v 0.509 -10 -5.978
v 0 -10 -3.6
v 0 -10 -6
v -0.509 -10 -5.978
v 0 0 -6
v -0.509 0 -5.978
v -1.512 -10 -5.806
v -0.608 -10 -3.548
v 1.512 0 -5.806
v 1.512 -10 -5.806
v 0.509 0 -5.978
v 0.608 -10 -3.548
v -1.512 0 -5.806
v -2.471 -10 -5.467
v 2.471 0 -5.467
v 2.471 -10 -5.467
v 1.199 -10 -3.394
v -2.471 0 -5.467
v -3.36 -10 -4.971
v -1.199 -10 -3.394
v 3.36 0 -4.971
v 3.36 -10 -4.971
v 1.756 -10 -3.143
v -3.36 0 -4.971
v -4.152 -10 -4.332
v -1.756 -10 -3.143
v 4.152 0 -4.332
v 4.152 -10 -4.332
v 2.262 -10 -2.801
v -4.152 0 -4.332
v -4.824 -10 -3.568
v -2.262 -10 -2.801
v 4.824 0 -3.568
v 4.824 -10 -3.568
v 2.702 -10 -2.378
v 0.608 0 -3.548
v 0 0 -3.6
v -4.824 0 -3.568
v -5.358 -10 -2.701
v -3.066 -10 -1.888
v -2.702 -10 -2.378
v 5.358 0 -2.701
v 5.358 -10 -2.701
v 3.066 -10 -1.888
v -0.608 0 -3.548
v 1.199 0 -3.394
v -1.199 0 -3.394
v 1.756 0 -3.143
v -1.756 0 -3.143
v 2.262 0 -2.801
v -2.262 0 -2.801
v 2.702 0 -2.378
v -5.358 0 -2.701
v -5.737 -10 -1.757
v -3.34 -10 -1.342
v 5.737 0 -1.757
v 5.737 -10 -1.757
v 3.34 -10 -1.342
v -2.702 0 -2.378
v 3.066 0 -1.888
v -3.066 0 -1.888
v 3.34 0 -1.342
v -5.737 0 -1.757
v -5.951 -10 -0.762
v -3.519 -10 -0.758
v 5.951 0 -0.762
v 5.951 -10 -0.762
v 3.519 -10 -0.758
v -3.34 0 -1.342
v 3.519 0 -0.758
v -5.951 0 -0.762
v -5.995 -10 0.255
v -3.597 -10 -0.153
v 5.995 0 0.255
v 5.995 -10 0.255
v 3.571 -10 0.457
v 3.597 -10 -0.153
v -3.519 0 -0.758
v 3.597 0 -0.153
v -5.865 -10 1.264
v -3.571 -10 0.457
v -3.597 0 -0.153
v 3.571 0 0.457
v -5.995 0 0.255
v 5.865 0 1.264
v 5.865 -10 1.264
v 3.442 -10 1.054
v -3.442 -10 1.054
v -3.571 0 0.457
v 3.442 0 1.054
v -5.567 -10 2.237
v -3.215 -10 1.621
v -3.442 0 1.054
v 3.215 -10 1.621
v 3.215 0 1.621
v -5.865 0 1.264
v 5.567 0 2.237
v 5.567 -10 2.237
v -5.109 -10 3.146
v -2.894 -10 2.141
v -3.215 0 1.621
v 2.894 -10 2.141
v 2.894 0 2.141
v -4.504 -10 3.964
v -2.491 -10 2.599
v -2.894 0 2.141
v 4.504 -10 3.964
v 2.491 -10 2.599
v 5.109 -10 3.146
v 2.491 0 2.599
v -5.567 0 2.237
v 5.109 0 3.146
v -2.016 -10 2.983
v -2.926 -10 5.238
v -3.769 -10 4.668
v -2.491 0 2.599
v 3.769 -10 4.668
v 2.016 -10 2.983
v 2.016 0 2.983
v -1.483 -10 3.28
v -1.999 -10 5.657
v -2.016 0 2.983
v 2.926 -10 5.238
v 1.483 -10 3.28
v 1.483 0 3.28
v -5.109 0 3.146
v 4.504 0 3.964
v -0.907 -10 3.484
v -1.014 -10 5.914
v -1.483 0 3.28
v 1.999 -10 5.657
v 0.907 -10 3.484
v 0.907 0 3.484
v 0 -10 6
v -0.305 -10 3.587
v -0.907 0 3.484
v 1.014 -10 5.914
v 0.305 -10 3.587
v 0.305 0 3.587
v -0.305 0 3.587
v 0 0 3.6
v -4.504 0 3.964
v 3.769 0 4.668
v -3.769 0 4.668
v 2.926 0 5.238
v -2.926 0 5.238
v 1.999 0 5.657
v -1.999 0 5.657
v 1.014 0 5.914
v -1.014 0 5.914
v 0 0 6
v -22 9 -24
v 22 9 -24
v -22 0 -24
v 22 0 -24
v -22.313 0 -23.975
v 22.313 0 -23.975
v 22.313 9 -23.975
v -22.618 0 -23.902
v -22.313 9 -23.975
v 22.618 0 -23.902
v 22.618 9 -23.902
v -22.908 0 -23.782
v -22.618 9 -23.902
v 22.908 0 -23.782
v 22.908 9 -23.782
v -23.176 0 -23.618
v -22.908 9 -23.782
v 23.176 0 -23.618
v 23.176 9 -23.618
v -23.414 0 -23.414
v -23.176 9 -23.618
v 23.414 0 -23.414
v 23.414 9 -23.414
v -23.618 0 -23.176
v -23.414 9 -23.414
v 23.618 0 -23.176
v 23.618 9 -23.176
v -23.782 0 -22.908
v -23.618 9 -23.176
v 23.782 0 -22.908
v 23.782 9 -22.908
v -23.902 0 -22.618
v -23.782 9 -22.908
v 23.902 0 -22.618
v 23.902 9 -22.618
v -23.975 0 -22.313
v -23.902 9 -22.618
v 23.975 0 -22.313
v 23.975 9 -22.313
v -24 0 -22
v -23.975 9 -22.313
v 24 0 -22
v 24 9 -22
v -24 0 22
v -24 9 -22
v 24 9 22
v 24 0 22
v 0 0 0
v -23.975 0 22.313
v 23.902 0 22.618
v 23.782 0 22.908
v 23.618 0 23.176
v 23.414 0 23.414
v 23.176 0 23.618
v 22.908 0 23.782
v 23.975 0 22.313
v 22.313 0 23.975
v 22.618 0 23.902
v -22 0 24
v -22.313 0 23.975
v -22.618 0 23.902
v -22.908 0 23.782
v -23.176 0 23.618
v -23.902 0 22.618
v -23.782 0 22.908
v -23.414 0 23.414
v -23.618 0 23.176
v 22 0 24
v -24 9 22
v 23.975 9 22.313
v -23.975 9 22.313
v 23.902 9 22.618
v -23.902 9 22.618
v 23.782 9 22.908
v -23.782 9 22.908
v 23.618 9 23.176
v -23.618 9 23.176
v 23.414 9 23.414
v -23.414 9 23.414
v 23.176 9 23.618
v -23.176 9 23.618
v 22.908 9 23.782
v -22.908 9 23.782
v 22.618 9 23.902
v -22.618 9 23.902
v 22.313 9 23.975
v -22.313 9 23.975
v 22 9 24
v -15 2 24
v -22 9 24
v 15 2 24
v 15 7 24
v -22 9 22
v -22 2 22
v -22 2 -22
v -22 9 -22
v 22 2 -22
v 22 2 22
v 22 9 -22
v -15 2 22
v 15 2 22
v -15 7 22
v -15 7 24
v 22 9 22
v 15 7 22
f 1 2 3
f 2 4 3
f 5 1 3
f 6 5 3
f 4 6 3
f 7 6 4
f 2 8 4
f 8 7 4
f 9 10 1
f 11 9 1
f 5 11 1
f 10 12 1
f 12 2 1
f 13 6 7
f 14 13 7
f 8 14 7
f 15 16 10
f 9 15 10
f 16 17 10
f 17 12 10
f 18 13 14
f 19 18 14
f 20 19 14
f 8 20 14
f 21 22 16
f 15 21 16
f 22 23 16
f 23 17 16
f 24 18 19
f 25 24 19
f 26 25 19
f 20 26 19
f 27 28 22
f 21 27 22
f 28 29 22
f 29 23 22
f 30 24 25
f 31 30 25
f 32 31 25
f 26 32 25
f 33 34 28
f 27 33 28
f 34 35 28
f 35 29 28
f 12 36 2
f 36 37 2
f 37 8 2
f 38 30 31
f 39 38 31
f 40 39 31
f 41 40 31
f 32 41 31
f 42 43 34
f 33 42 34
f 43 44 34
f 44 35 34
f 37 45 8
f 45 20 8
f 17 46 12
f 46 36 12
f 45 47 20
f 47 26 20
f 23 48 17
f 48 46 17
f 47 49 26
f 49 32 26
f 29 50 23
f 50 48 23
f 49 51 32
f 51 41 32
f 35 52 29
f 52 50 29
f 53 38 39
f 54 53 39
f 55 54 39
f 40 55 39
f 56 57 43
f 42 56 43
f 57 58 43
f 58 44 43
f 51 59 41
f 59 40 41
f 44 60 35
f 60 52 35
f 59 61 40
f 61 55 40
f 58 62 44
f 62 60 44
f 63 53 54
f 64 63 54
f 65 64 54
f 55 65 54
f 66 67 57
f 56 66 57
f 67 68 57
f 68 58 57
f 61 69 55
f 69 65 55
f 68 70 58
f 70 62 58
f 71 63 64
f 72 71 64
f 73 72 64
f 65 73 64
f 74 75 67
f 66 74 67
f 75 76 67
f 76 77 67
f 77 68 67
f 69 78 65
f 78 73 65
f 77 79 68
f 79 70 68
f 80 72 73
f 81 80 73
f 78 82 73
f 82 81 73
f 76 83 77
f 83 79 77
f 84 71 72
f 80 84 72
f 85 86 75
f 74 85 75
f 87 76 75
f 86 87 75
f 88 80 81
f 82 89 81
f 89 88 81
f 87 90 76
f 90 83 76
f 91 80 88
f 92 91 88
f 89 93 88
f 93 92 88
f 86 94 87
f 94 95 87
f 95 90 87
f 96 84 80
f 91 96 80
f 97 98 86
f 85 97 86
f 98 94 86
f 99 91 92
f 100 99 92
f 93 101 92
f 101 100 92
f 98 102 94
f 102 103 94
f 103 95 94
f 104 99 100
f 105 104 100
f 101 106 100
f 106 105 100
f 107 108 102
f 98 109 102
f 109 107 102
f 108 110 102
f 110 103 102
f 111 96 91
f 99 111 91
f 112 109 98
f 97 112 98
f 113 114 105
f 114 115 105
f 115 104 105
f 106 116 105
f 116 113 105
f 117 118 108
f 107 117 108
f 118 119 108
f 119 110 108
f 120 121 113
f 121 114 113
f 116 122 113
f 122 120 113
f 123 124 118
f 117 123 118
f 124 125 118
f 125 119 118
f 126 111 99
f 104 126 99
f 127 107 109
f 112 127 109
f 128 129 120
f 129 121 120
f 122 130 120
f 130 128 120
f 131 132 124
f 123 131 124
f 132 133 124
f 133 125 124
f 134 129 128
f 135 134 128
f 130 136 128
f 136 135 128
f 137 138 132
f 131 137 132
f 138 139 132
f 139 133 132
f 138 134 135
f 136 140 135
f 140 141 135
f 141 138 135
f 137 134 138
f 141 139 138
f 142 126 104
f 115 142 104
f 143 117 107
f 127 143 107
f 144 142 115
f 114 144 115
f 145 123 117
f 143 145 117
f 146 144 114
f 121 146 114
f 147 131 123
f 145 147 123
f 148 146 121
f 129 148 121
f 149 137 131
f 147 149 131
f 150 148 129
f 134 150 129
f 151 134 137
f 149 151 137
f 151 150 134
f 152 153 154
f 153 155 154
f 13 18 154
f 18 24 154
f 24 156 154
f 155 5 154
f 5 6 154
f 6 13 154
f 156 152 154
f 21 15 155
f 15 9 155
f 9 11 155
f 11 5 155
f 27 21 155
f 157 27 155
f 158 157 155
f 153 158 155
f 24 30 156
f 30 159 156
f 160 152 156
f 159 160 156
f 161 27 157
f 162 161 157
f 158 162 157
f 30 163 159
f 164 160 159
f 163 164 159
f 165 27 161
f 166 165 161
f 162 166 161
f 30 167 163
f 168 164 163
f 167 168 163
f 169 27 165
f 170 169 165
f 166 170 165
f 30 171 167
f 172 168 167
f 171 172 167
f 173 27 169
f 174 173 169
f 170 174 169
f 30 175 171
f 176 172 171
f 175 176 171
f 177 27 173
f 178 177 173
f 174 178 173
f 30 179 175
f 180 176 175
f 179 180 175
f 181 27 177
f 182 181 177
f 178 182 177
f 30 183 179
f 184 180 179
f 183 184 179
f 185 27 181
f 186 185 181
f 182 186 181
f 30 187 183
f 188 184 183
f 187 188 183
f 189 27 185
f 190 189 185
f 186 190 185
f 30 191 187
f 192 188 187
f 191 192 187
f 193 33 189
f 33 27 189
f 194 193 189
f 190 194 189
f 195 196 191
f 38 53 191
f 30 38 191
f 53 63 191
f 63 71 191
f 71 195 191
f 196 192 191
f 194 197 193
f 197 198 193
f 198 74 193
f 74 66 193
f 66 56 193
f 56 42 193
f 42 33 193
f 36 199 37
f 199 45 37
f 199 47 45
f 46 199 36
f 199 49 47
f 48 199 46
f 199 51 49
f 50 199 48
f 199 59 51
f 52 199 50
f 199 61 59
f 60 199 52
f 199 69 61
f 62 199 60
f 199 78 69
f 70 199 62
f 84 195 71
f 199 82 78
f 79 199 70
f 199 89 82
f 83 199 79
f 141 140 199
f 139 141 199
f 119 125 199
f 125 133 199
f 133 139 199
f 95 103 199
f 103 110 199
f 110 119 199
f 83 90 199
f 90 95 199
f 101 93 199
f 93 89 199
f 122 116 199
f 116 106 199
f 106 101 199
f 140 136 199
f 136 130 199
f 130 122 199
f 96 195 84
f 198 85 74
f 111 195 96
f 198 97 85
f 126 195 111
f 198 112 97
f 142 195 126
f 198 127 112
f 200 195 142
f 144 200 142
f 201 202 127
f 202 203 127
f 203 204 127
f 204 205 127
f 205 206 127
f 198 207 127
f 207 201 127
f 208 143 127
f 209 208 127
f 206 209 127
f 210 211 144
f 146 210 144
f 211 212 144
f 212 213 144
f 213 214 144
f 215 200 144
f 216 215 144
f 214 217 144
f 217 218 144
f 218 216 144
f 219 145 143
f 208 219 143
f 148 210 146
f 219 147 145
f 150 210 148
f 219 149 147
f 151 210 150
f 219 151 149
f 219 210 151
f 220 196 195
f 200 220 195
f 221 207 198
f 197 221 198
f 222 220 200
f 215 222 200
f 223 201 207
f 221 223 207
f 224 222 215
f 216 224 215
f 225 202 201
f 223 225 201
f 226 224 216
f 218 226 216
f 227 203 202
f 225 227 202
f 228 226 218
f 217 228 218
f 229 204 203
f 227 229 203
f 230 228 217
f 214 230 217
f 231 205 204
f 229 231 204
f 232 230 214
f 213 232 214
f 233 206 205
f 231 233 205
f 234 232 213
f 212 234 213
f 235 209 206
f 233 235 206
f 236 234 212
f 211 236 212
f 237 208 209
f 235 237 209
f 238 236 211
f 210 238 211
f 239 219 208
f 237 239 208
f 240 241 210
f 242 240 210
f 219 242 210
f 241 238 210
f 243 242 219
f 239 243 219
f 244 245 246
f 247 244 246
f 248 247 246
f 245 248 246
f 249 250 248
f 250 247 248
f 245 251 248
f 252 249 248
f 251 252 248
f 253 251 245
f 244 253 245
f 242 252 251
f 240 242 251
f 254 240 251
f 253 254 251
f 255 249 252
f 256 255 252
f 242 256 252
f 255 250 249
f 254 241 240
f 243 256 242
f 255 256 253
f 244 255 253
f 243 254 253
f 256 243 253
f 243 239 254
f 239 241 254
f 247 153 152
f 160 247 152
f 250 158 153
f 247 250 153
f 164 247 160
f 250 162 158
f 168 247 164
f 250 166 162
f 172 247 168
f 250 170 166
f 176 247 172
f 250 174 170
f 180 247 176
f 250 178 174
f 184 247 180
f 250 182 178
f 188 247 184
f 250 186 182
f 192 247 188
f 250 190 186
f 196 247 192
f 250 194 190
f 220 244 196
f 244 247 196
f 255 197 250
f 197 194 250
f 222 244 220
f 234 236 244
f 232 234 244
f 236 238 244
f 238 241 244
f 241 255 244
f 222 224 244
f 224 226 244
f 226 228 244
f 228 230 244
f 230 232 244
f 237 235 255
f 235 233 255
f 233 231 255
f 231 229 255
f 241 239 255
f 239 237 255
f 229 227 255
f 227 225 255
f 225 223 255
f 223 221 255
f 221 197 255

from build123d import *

# Parameters (mm, degrees)
SKETCH1_W           = 48
SKETCH1_H           = 48
BOSS_EXTRUDE1_DEPTH = 9
SKETCH2_W           = 44
SKETCH2_H           = 44
CUT_EXTRUDE1_DEPTH  = 7
SKETCH3_R           = 6
BOSS_EXTRUDE2_DEPTH = 10
SKETCH4_R           = 3.6
CUT_EXTRUDE2_DEPTH  = 10
SKETCH5_W           = 30
SKETCH5_H           = 5
CUT_EXTRUDE3_DEPTH  = 10
FILLET1_R           = 2


with BuildPart() as part:
    # Sketch1 → Boss-Extrude1 (new body)
    with BuildSketch(Plane(origin=(0, 0, 0), x_dir=(1, 0, 0), z_dir=(0, 1, 0))):
        Rectangle(SKETCH1_W, SKETCH1_H)
    extrude(amount=BOSS_EXTRUDE1_DEPTH)

    # Sketch2 → Cut-Extrude1 (cut)
    with BuildSketch(Plane(origin=(0, 9, 0), x_dir=(1, 0, 0), z_dir=(0, 1, 0))):
        Rectangle(SKETCH2_W, SKETCH2_H)
    extrude(amount=-CUT_EXTRUDE1_DEPTH, mode=Mode.SUBTRACT)

    # Sketch3 → Boss-Extrude2 (add)
    with BuildSketch(Plane.XZ):
        with Locations(Location((0, 0, 0), (0, 0, 270))):
            Circle(SKETCH3_R)
    extrude(amount=BOSS_EXTRUDE2_DEPTH)

    # Sketch4 → Cut-Extrude2 (cut)
    with BuildSketch(Plane.XZ.offset(10)):
        with Locations(Location((0, 0, 0), (0, 0, 270))):
            Circle(SKETCH4_R)
    extrude(amount=-CUT_EXTRUDE2_DEPTH, mode=Mode.SUBTRACT)

    # Sketch5 → Cut-Extrude3 (cut)
    with BuildSketch(Plane.XY.offset(24)):
        with Locations((0, 4.5)):
            Rectangle(SKETCH5_W, SKETCH5_H)
    extrude(amount=-CUT_EXTRUDE3_DEPTH, mode=Mode.SUBTRACT)

    # Fillet1
    fillet1_edges = [part.edges().sort_by_distance(p)[0] for p in [
        (24, 4.5, 24),
        (-24, 4.5, 24),
        (-24, 4.5, -24),
        (24, 4.5, -24),
    ]]
    fillet(fillet1_edges, radius=FILLET1_R)


solid = part.part
